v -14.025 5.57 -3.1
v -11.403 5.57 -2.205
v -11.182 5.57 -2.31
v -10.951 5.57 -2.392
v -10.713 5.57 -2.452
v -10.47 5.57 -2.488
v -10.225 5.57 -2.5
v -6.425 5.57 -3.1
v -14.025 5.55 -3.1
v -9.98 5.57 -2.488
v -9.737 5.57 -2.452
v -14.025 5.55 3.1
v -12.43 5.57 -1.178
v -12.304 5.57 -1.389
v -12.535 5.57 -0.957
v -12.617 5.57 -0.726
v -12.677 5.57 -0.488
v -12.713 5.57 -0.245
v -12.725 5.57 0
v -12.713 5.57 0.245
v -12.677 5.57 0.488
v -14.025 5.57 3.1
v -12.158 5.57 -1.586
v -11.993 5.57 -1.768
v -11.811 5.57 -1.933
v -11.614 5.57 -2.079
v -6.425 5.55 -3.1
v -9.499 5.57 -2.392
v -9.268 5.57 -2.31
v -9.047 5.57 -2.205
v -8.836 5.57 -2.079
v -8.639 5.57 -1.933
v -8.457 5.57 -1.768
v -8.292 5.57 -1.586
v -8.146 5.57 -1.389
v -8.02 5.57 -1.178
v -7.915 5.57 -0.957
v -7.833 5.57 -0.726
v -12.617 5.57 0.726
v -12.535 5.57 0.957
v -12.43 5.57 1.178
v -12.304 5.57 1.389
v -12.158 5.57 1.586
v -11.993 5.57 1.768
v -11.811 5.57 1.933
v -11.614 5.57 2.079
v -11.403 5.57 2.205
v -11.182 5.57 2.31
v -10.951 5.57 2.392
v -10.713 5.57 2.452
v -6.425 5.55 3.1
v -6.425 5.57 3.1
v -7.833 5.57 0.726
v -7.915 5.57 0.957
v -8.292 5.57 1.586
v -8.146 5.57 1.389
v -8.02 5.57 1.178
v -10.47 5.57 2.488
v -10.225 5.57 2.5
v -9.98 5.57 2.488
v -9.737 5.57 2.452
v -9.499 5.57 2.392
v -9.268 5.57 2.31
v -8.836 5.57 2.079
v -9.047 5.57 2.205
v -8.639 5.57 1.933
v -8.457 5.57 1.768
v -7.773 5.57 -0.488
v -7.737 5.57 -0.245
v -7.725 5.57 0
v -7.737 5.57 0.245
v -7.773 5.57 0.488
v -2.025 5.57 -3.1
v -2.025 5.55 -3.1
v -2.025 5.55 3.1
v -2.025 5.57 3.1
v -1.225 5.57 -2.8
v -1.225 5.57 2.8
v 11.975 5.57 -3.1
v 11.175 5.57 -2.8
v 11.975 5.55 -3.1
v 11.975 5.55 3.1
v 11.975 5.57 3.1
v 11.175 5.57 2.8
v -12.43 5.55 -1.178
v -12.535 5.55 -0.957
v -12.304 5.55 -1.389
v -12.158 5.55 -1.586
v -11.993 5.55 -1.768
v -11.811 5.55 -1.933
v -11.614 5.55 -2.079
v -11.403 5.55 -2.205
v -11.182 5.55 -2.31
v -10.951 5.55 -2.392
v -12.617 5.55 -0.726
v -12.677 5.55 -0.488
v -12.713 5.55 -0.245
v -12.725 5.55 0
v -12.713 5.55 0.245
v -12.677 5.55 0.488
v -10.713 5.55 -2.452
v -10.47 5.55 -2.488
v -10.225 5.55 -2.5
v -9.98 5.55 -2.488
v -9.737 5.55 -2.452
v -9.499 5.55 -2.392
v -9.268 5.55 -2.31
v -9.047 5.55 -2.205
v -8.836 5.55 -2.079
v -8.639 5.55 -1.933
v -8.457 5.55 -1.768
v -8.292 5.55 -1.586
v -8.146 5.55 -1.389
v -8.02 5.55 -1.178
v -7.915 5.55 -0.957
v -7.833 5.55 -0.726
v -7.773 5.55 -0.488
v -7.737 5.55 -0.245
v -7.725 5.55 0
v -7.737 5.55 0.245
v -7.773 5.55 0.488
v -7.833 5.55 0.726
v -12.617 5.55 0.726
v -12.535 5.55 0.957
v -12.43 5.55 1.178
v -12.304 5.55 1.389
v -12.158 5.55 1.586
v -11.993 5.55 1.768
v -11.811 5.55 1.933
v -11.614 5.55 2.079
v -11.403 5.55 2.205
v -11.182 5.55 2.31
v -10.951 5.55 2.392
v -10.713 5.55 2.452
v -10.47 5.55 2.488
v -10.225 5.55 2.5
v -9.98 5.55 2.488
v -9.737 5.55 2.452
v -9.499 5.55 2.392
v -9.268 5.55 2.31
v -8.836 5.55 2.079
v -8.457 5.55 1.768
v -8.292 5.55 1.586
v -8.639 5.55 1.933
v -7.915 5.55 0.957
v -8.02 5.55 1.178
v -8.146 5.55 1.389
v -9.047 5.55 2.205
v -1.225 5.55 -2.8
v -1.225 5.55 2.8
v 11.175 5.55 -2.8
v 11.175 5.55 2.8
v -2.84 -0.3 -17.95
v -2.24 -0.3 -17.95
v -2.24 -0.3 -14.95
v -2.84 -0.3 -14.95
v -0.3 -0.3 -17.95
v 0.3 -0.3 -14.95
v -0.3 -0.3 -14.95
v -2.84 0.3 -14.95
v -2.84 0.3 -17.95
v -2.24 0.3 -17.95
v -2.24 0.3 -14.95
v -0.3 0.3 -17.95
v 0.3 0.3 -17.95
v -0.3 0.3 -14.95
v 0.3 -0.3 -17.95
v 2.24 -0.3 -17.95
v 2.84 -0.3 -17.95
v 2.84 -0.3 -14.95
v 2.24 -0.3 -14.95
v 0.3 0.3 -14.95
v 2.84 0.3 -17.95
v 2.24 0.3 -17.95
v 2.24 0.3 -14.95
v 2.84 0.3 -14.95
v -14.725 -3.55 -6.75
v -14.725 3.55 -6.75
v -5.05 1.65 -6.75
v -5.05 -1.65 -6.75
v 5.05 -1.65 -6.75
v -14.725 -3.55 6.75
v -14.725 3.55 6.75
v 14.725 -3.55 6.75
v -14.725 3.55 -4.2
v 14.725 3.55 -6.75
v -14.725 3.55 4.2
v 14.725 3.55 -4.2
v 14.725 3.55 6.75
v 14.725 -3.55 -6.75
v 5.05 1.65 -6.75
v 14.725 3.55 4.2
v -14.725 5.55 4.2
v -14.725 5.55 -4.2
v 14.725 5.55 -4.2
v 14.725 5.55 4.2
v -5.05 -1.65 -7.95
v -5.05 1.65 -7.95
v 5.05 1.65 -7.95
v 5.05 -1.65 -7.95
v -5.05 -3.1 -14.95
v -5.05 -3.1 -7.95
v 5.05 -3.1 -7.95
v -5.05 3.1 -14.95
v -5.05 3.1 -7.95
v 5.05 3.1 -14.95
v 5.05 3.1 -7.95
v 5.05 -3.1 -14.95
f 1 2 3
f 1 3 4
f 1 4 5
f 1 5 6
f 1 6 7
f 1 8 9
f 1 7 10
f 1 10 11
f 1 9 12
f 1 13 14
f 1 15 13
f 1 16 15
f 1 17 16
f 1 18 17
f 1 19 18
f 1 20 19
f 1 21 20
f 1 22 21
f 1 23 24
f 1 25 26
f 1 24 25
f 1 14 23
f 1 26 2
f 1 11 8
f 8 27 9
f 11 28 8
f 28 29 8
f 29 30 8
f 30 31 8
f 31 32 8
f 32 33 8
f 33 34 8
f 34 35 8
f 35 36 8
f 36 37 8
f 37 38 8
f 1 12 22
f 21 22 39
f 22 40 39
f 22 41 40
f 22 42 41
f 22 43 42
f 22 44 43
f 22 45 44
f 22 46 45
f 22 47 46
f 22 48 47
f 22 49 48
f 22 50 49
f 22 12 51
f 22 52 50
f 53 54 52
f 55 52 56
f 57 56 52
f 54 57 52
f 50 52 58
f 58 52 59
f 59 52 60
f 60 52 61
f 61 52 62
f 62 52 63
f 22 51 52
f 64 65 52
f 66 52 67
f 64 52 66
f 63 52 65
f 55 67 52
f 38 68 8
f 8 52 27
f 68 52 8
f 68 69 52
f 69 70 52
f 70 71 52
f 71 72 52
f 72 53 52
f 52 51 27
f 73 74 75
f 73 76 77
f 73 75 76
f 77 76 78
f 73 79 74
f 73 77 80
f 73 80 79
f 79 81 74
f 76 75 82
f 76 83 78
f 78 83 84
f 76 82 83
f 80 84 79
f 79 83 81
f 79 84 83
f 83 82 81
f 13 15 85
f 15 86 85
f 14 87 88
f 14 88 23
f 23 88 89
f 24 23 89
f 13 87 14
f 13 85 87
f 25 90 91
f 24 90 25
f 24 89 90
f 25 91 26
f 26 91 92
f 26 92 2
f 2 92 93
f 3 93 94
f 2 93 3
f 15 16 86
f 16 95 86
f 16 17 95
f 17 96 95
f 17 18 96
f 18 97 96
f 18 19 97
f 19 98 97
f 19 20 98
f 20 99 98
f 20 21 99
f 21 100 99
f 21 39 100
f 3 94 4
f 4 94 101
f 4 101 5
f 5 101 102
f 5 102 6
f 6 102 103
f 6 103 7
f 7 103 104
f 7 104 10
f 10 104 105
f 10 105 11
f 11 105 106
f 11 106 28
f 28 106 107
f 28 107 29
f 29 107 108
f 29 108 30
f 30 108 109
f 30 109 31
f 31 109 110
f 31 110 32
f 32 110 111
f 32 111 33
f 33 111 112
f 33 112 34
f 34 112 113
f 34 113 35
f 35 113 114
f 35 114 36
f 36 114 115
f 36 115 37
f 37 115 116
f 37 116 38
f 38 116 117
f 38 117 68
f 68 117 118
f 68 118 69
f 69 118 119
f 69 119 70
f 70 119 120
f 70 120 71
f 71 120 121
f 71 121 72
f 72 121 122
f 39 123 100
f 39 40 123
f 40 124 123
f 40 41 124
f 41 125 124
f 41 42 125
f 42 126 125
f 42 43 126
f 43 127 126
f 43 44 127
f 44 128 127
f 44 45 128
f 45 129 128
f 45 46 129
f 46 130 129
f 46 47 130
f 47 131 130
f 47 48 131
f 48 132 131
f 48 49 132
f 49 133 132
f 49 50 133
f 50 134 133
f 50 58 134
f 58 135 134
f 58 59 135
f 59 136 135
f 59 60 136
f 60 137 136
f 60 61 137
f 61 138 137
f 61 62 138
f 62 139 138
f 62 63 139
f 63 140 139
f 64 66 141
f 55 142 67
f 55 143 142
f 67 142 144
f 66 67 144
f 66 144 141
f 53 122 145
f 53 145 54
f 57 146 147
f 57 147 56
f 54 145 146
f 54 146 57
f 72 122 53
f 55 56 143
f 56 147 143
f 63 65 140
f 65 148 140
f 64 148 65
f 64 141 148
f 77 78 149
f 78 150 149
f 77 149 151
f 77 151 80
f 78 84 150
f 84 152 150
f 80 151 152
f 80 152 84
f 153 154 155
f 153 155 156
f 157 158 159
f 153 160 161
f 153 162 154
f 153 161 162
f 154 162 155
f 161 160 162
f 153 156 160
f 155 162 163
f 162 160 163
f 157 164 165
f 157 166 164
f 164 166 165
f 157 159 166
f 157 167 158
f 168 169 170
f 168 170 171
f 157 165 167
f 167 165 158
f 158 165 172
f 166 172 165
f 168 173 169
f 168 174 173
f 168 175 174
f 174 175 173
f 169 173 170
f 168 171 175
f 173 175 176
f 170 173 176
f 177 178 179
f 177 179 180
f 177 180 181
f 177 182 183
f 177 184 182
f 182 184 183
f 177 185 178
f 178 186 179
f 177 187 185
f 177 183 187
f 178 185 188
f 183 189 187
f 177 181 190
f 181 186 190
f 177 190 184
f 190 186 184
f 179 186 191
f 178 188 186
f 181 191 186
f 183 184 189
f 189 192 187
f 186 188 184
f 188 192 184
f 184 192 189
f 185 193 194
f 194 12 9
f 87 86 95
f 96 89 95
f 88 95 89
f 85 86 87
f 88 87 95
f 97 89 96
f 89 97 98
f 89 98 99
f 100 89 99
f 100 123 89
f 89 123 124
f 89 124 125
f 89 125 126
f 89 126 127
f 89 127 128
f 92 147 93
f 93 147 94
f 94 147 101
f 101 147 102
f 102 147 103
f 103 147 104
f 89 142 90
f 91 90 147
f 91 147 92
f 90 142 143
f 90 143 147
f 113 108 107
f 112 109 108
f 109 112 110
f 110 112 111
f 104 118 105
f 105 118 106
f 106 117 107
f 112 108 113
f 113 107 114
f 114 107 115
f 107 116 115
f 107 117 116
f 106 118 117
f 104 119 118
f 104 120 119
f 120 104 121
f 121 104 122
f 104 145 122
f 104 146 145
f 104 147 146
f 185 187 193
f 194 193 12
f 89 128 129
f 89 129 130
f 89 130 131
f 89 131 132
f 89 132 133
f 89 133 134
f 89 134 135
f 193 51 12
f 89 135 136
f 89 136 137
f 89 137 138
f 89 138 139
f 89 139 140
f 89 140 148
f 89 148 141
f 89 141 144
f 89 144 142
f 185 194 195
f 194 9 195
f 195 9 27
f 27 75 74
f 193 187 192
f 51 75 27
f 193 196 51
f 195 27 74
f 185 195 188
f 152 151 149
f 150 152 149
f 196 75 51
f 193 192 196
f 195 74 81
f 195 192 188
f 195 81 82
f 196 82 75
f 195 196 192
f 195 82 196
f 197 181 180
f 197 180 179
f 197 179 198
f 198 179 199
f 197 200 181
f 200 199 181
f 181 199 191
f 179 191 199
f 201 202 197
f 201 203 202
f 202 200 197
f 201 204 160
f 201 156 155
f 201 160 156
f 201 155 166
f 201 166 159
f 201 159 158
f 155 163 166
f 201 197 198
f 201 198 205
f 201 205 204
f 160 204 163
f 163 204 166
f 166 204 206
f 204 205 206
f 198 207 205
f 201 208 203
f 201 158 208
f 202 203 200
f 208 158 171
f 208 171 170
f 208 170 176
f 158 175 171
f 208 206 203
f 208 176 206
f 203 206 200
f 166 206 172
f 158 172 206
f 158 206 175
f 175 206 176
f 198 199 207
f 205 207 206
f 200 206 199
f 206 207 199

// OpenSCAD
$fn = 64;

// GP2Y0D413K0F simplified exterior model
// Coordinate system:
// origin = center of main body case
// +Z = up
// +Y = front (lens side)
// units = mm

// -------------------- Main dimensions from datasheet --------------------
body_w = 29.45;      // X
body_d = 7.1;        // Y
body_h = 13.5;       // Z

lenscase_w = 29.45;  // front view suggests full width face piece
lenscase_d = 2.0;    // side view
lenscase_h = 8.4;    // side view front protrusion height envelope

// Lens center reference dimensions (* in datasheet)
emit_cx_from_left = 4.5;
recv_cx_from_left = 19.7;

// Front lower reference
front_lower_step_z = 3.75;   // from bottom to lower front ledge

// Receiver window approximate dimensions read from drawing
recv_win_w = 12.4;
recv_win_h = 5.6;

// Emitter lens approximate visible diameter from drawing
emit_lens_d = 5.0;

// PCB / connector
pwb_t = 1.2;
pwb_w = 10.1;
pwb_d = 3.3;

conn_w = 10.1;
conn_d = 6.2;
conn_h = 7.0;

pin_w = 0.6;
pin_d = 0.6;
pin_h = 3.0;
pin_pitch = 2.54;

// -------------------- Derived positions --------------------
body_xmin = -body_w/2;
body_xmax =  body_w/2;
body_ymin = -body_d/2;
body_ymax =  body_d/2;
body_zmin = -body_h/2;
body_zmax =  body_h/2;

front_face_y = body_ymax;
lenscase_center_y = front_face_y + lenscase_d/2;

emit_cx = body_xmin + emit_cx_from_left;
recv_cx = body_xmin + recv_cx_from_left;

// Lens centers taken approximately at mid-height of front optical section
lens_cz = 0;

// -------------------- Modules --------------------
module main_case() {
    color([0.12,0.12,0.12])
    cube([body_w, body_d, body_h], center=true);
}

module front_lens_case() {
    color([0.18,0.18,0.18])
    translate([0, lenscase_center_y, lens_cz])
        cube([lenscase_w, lenscase_d, lenscase_h], center=true);
}

module front_windows() {
    // subtract shallow recesses to indicate the two front optical windows
    difference() {
        union() {
            // left emitter bezel block
            translate([emit_cx, front_face_y + lenscase_d/2 + 0.01, lens_cz])
                cube([7.6, lenscase_d + 0.02, 6.2], center=true);

            // right receiver bezel block
            translate([recv_cx, front_face_y + lenscase_d/2 + 0.01, lens_cz])
                cube([14.0, lenscase_d + 0.02, 6.2], center=true);
        }

        // circular emitter lens recess
        translate([emit_cx, front_face_y + lenscase_d/2, lens_cz])
            rotate([90,0,0])
                cylinder(h=lenscase_d + 0.2, d=emit_lens_d, center=true);

        // receiver rectangular window recess
        translate([recv_cx, front_face_y + lenscase_d/2, lens_cz])
            cube([recv_win_w, lenscase_d + 0.2, recv_win_h], center=true);
    }
}

module pwb() {
    color([0.82,0.72,0.45])
    translate([0, 0, body_zmin - pwb_t/2])
        cube([pwb_w, pwb_d, pwb_t], center=true);
}

module connector_body() {
    color([0.92,0.92,0.92])
    translate([0, 0, body_zmin - pwb_t - conn_h/2])
        cube([conn_w, conn_d, conn_h], center=true);
}

module connector_pins() {
    color([0.75,0.75,0.75])
    for (x = [-pin_pitch, 0, pin_pitch])
        translate([x, 0, body_zmin - pwb_t - conn_h - pin_h/2])
            cube([pin_w, pin_d, pin_h], center=true);
}

module sensor_model() {
    union() {
        main_case();
        front_lens_case();
        front_windows();
        pwb();
        connector_body();
        connector_pins();
    }
}

sensor_model();
